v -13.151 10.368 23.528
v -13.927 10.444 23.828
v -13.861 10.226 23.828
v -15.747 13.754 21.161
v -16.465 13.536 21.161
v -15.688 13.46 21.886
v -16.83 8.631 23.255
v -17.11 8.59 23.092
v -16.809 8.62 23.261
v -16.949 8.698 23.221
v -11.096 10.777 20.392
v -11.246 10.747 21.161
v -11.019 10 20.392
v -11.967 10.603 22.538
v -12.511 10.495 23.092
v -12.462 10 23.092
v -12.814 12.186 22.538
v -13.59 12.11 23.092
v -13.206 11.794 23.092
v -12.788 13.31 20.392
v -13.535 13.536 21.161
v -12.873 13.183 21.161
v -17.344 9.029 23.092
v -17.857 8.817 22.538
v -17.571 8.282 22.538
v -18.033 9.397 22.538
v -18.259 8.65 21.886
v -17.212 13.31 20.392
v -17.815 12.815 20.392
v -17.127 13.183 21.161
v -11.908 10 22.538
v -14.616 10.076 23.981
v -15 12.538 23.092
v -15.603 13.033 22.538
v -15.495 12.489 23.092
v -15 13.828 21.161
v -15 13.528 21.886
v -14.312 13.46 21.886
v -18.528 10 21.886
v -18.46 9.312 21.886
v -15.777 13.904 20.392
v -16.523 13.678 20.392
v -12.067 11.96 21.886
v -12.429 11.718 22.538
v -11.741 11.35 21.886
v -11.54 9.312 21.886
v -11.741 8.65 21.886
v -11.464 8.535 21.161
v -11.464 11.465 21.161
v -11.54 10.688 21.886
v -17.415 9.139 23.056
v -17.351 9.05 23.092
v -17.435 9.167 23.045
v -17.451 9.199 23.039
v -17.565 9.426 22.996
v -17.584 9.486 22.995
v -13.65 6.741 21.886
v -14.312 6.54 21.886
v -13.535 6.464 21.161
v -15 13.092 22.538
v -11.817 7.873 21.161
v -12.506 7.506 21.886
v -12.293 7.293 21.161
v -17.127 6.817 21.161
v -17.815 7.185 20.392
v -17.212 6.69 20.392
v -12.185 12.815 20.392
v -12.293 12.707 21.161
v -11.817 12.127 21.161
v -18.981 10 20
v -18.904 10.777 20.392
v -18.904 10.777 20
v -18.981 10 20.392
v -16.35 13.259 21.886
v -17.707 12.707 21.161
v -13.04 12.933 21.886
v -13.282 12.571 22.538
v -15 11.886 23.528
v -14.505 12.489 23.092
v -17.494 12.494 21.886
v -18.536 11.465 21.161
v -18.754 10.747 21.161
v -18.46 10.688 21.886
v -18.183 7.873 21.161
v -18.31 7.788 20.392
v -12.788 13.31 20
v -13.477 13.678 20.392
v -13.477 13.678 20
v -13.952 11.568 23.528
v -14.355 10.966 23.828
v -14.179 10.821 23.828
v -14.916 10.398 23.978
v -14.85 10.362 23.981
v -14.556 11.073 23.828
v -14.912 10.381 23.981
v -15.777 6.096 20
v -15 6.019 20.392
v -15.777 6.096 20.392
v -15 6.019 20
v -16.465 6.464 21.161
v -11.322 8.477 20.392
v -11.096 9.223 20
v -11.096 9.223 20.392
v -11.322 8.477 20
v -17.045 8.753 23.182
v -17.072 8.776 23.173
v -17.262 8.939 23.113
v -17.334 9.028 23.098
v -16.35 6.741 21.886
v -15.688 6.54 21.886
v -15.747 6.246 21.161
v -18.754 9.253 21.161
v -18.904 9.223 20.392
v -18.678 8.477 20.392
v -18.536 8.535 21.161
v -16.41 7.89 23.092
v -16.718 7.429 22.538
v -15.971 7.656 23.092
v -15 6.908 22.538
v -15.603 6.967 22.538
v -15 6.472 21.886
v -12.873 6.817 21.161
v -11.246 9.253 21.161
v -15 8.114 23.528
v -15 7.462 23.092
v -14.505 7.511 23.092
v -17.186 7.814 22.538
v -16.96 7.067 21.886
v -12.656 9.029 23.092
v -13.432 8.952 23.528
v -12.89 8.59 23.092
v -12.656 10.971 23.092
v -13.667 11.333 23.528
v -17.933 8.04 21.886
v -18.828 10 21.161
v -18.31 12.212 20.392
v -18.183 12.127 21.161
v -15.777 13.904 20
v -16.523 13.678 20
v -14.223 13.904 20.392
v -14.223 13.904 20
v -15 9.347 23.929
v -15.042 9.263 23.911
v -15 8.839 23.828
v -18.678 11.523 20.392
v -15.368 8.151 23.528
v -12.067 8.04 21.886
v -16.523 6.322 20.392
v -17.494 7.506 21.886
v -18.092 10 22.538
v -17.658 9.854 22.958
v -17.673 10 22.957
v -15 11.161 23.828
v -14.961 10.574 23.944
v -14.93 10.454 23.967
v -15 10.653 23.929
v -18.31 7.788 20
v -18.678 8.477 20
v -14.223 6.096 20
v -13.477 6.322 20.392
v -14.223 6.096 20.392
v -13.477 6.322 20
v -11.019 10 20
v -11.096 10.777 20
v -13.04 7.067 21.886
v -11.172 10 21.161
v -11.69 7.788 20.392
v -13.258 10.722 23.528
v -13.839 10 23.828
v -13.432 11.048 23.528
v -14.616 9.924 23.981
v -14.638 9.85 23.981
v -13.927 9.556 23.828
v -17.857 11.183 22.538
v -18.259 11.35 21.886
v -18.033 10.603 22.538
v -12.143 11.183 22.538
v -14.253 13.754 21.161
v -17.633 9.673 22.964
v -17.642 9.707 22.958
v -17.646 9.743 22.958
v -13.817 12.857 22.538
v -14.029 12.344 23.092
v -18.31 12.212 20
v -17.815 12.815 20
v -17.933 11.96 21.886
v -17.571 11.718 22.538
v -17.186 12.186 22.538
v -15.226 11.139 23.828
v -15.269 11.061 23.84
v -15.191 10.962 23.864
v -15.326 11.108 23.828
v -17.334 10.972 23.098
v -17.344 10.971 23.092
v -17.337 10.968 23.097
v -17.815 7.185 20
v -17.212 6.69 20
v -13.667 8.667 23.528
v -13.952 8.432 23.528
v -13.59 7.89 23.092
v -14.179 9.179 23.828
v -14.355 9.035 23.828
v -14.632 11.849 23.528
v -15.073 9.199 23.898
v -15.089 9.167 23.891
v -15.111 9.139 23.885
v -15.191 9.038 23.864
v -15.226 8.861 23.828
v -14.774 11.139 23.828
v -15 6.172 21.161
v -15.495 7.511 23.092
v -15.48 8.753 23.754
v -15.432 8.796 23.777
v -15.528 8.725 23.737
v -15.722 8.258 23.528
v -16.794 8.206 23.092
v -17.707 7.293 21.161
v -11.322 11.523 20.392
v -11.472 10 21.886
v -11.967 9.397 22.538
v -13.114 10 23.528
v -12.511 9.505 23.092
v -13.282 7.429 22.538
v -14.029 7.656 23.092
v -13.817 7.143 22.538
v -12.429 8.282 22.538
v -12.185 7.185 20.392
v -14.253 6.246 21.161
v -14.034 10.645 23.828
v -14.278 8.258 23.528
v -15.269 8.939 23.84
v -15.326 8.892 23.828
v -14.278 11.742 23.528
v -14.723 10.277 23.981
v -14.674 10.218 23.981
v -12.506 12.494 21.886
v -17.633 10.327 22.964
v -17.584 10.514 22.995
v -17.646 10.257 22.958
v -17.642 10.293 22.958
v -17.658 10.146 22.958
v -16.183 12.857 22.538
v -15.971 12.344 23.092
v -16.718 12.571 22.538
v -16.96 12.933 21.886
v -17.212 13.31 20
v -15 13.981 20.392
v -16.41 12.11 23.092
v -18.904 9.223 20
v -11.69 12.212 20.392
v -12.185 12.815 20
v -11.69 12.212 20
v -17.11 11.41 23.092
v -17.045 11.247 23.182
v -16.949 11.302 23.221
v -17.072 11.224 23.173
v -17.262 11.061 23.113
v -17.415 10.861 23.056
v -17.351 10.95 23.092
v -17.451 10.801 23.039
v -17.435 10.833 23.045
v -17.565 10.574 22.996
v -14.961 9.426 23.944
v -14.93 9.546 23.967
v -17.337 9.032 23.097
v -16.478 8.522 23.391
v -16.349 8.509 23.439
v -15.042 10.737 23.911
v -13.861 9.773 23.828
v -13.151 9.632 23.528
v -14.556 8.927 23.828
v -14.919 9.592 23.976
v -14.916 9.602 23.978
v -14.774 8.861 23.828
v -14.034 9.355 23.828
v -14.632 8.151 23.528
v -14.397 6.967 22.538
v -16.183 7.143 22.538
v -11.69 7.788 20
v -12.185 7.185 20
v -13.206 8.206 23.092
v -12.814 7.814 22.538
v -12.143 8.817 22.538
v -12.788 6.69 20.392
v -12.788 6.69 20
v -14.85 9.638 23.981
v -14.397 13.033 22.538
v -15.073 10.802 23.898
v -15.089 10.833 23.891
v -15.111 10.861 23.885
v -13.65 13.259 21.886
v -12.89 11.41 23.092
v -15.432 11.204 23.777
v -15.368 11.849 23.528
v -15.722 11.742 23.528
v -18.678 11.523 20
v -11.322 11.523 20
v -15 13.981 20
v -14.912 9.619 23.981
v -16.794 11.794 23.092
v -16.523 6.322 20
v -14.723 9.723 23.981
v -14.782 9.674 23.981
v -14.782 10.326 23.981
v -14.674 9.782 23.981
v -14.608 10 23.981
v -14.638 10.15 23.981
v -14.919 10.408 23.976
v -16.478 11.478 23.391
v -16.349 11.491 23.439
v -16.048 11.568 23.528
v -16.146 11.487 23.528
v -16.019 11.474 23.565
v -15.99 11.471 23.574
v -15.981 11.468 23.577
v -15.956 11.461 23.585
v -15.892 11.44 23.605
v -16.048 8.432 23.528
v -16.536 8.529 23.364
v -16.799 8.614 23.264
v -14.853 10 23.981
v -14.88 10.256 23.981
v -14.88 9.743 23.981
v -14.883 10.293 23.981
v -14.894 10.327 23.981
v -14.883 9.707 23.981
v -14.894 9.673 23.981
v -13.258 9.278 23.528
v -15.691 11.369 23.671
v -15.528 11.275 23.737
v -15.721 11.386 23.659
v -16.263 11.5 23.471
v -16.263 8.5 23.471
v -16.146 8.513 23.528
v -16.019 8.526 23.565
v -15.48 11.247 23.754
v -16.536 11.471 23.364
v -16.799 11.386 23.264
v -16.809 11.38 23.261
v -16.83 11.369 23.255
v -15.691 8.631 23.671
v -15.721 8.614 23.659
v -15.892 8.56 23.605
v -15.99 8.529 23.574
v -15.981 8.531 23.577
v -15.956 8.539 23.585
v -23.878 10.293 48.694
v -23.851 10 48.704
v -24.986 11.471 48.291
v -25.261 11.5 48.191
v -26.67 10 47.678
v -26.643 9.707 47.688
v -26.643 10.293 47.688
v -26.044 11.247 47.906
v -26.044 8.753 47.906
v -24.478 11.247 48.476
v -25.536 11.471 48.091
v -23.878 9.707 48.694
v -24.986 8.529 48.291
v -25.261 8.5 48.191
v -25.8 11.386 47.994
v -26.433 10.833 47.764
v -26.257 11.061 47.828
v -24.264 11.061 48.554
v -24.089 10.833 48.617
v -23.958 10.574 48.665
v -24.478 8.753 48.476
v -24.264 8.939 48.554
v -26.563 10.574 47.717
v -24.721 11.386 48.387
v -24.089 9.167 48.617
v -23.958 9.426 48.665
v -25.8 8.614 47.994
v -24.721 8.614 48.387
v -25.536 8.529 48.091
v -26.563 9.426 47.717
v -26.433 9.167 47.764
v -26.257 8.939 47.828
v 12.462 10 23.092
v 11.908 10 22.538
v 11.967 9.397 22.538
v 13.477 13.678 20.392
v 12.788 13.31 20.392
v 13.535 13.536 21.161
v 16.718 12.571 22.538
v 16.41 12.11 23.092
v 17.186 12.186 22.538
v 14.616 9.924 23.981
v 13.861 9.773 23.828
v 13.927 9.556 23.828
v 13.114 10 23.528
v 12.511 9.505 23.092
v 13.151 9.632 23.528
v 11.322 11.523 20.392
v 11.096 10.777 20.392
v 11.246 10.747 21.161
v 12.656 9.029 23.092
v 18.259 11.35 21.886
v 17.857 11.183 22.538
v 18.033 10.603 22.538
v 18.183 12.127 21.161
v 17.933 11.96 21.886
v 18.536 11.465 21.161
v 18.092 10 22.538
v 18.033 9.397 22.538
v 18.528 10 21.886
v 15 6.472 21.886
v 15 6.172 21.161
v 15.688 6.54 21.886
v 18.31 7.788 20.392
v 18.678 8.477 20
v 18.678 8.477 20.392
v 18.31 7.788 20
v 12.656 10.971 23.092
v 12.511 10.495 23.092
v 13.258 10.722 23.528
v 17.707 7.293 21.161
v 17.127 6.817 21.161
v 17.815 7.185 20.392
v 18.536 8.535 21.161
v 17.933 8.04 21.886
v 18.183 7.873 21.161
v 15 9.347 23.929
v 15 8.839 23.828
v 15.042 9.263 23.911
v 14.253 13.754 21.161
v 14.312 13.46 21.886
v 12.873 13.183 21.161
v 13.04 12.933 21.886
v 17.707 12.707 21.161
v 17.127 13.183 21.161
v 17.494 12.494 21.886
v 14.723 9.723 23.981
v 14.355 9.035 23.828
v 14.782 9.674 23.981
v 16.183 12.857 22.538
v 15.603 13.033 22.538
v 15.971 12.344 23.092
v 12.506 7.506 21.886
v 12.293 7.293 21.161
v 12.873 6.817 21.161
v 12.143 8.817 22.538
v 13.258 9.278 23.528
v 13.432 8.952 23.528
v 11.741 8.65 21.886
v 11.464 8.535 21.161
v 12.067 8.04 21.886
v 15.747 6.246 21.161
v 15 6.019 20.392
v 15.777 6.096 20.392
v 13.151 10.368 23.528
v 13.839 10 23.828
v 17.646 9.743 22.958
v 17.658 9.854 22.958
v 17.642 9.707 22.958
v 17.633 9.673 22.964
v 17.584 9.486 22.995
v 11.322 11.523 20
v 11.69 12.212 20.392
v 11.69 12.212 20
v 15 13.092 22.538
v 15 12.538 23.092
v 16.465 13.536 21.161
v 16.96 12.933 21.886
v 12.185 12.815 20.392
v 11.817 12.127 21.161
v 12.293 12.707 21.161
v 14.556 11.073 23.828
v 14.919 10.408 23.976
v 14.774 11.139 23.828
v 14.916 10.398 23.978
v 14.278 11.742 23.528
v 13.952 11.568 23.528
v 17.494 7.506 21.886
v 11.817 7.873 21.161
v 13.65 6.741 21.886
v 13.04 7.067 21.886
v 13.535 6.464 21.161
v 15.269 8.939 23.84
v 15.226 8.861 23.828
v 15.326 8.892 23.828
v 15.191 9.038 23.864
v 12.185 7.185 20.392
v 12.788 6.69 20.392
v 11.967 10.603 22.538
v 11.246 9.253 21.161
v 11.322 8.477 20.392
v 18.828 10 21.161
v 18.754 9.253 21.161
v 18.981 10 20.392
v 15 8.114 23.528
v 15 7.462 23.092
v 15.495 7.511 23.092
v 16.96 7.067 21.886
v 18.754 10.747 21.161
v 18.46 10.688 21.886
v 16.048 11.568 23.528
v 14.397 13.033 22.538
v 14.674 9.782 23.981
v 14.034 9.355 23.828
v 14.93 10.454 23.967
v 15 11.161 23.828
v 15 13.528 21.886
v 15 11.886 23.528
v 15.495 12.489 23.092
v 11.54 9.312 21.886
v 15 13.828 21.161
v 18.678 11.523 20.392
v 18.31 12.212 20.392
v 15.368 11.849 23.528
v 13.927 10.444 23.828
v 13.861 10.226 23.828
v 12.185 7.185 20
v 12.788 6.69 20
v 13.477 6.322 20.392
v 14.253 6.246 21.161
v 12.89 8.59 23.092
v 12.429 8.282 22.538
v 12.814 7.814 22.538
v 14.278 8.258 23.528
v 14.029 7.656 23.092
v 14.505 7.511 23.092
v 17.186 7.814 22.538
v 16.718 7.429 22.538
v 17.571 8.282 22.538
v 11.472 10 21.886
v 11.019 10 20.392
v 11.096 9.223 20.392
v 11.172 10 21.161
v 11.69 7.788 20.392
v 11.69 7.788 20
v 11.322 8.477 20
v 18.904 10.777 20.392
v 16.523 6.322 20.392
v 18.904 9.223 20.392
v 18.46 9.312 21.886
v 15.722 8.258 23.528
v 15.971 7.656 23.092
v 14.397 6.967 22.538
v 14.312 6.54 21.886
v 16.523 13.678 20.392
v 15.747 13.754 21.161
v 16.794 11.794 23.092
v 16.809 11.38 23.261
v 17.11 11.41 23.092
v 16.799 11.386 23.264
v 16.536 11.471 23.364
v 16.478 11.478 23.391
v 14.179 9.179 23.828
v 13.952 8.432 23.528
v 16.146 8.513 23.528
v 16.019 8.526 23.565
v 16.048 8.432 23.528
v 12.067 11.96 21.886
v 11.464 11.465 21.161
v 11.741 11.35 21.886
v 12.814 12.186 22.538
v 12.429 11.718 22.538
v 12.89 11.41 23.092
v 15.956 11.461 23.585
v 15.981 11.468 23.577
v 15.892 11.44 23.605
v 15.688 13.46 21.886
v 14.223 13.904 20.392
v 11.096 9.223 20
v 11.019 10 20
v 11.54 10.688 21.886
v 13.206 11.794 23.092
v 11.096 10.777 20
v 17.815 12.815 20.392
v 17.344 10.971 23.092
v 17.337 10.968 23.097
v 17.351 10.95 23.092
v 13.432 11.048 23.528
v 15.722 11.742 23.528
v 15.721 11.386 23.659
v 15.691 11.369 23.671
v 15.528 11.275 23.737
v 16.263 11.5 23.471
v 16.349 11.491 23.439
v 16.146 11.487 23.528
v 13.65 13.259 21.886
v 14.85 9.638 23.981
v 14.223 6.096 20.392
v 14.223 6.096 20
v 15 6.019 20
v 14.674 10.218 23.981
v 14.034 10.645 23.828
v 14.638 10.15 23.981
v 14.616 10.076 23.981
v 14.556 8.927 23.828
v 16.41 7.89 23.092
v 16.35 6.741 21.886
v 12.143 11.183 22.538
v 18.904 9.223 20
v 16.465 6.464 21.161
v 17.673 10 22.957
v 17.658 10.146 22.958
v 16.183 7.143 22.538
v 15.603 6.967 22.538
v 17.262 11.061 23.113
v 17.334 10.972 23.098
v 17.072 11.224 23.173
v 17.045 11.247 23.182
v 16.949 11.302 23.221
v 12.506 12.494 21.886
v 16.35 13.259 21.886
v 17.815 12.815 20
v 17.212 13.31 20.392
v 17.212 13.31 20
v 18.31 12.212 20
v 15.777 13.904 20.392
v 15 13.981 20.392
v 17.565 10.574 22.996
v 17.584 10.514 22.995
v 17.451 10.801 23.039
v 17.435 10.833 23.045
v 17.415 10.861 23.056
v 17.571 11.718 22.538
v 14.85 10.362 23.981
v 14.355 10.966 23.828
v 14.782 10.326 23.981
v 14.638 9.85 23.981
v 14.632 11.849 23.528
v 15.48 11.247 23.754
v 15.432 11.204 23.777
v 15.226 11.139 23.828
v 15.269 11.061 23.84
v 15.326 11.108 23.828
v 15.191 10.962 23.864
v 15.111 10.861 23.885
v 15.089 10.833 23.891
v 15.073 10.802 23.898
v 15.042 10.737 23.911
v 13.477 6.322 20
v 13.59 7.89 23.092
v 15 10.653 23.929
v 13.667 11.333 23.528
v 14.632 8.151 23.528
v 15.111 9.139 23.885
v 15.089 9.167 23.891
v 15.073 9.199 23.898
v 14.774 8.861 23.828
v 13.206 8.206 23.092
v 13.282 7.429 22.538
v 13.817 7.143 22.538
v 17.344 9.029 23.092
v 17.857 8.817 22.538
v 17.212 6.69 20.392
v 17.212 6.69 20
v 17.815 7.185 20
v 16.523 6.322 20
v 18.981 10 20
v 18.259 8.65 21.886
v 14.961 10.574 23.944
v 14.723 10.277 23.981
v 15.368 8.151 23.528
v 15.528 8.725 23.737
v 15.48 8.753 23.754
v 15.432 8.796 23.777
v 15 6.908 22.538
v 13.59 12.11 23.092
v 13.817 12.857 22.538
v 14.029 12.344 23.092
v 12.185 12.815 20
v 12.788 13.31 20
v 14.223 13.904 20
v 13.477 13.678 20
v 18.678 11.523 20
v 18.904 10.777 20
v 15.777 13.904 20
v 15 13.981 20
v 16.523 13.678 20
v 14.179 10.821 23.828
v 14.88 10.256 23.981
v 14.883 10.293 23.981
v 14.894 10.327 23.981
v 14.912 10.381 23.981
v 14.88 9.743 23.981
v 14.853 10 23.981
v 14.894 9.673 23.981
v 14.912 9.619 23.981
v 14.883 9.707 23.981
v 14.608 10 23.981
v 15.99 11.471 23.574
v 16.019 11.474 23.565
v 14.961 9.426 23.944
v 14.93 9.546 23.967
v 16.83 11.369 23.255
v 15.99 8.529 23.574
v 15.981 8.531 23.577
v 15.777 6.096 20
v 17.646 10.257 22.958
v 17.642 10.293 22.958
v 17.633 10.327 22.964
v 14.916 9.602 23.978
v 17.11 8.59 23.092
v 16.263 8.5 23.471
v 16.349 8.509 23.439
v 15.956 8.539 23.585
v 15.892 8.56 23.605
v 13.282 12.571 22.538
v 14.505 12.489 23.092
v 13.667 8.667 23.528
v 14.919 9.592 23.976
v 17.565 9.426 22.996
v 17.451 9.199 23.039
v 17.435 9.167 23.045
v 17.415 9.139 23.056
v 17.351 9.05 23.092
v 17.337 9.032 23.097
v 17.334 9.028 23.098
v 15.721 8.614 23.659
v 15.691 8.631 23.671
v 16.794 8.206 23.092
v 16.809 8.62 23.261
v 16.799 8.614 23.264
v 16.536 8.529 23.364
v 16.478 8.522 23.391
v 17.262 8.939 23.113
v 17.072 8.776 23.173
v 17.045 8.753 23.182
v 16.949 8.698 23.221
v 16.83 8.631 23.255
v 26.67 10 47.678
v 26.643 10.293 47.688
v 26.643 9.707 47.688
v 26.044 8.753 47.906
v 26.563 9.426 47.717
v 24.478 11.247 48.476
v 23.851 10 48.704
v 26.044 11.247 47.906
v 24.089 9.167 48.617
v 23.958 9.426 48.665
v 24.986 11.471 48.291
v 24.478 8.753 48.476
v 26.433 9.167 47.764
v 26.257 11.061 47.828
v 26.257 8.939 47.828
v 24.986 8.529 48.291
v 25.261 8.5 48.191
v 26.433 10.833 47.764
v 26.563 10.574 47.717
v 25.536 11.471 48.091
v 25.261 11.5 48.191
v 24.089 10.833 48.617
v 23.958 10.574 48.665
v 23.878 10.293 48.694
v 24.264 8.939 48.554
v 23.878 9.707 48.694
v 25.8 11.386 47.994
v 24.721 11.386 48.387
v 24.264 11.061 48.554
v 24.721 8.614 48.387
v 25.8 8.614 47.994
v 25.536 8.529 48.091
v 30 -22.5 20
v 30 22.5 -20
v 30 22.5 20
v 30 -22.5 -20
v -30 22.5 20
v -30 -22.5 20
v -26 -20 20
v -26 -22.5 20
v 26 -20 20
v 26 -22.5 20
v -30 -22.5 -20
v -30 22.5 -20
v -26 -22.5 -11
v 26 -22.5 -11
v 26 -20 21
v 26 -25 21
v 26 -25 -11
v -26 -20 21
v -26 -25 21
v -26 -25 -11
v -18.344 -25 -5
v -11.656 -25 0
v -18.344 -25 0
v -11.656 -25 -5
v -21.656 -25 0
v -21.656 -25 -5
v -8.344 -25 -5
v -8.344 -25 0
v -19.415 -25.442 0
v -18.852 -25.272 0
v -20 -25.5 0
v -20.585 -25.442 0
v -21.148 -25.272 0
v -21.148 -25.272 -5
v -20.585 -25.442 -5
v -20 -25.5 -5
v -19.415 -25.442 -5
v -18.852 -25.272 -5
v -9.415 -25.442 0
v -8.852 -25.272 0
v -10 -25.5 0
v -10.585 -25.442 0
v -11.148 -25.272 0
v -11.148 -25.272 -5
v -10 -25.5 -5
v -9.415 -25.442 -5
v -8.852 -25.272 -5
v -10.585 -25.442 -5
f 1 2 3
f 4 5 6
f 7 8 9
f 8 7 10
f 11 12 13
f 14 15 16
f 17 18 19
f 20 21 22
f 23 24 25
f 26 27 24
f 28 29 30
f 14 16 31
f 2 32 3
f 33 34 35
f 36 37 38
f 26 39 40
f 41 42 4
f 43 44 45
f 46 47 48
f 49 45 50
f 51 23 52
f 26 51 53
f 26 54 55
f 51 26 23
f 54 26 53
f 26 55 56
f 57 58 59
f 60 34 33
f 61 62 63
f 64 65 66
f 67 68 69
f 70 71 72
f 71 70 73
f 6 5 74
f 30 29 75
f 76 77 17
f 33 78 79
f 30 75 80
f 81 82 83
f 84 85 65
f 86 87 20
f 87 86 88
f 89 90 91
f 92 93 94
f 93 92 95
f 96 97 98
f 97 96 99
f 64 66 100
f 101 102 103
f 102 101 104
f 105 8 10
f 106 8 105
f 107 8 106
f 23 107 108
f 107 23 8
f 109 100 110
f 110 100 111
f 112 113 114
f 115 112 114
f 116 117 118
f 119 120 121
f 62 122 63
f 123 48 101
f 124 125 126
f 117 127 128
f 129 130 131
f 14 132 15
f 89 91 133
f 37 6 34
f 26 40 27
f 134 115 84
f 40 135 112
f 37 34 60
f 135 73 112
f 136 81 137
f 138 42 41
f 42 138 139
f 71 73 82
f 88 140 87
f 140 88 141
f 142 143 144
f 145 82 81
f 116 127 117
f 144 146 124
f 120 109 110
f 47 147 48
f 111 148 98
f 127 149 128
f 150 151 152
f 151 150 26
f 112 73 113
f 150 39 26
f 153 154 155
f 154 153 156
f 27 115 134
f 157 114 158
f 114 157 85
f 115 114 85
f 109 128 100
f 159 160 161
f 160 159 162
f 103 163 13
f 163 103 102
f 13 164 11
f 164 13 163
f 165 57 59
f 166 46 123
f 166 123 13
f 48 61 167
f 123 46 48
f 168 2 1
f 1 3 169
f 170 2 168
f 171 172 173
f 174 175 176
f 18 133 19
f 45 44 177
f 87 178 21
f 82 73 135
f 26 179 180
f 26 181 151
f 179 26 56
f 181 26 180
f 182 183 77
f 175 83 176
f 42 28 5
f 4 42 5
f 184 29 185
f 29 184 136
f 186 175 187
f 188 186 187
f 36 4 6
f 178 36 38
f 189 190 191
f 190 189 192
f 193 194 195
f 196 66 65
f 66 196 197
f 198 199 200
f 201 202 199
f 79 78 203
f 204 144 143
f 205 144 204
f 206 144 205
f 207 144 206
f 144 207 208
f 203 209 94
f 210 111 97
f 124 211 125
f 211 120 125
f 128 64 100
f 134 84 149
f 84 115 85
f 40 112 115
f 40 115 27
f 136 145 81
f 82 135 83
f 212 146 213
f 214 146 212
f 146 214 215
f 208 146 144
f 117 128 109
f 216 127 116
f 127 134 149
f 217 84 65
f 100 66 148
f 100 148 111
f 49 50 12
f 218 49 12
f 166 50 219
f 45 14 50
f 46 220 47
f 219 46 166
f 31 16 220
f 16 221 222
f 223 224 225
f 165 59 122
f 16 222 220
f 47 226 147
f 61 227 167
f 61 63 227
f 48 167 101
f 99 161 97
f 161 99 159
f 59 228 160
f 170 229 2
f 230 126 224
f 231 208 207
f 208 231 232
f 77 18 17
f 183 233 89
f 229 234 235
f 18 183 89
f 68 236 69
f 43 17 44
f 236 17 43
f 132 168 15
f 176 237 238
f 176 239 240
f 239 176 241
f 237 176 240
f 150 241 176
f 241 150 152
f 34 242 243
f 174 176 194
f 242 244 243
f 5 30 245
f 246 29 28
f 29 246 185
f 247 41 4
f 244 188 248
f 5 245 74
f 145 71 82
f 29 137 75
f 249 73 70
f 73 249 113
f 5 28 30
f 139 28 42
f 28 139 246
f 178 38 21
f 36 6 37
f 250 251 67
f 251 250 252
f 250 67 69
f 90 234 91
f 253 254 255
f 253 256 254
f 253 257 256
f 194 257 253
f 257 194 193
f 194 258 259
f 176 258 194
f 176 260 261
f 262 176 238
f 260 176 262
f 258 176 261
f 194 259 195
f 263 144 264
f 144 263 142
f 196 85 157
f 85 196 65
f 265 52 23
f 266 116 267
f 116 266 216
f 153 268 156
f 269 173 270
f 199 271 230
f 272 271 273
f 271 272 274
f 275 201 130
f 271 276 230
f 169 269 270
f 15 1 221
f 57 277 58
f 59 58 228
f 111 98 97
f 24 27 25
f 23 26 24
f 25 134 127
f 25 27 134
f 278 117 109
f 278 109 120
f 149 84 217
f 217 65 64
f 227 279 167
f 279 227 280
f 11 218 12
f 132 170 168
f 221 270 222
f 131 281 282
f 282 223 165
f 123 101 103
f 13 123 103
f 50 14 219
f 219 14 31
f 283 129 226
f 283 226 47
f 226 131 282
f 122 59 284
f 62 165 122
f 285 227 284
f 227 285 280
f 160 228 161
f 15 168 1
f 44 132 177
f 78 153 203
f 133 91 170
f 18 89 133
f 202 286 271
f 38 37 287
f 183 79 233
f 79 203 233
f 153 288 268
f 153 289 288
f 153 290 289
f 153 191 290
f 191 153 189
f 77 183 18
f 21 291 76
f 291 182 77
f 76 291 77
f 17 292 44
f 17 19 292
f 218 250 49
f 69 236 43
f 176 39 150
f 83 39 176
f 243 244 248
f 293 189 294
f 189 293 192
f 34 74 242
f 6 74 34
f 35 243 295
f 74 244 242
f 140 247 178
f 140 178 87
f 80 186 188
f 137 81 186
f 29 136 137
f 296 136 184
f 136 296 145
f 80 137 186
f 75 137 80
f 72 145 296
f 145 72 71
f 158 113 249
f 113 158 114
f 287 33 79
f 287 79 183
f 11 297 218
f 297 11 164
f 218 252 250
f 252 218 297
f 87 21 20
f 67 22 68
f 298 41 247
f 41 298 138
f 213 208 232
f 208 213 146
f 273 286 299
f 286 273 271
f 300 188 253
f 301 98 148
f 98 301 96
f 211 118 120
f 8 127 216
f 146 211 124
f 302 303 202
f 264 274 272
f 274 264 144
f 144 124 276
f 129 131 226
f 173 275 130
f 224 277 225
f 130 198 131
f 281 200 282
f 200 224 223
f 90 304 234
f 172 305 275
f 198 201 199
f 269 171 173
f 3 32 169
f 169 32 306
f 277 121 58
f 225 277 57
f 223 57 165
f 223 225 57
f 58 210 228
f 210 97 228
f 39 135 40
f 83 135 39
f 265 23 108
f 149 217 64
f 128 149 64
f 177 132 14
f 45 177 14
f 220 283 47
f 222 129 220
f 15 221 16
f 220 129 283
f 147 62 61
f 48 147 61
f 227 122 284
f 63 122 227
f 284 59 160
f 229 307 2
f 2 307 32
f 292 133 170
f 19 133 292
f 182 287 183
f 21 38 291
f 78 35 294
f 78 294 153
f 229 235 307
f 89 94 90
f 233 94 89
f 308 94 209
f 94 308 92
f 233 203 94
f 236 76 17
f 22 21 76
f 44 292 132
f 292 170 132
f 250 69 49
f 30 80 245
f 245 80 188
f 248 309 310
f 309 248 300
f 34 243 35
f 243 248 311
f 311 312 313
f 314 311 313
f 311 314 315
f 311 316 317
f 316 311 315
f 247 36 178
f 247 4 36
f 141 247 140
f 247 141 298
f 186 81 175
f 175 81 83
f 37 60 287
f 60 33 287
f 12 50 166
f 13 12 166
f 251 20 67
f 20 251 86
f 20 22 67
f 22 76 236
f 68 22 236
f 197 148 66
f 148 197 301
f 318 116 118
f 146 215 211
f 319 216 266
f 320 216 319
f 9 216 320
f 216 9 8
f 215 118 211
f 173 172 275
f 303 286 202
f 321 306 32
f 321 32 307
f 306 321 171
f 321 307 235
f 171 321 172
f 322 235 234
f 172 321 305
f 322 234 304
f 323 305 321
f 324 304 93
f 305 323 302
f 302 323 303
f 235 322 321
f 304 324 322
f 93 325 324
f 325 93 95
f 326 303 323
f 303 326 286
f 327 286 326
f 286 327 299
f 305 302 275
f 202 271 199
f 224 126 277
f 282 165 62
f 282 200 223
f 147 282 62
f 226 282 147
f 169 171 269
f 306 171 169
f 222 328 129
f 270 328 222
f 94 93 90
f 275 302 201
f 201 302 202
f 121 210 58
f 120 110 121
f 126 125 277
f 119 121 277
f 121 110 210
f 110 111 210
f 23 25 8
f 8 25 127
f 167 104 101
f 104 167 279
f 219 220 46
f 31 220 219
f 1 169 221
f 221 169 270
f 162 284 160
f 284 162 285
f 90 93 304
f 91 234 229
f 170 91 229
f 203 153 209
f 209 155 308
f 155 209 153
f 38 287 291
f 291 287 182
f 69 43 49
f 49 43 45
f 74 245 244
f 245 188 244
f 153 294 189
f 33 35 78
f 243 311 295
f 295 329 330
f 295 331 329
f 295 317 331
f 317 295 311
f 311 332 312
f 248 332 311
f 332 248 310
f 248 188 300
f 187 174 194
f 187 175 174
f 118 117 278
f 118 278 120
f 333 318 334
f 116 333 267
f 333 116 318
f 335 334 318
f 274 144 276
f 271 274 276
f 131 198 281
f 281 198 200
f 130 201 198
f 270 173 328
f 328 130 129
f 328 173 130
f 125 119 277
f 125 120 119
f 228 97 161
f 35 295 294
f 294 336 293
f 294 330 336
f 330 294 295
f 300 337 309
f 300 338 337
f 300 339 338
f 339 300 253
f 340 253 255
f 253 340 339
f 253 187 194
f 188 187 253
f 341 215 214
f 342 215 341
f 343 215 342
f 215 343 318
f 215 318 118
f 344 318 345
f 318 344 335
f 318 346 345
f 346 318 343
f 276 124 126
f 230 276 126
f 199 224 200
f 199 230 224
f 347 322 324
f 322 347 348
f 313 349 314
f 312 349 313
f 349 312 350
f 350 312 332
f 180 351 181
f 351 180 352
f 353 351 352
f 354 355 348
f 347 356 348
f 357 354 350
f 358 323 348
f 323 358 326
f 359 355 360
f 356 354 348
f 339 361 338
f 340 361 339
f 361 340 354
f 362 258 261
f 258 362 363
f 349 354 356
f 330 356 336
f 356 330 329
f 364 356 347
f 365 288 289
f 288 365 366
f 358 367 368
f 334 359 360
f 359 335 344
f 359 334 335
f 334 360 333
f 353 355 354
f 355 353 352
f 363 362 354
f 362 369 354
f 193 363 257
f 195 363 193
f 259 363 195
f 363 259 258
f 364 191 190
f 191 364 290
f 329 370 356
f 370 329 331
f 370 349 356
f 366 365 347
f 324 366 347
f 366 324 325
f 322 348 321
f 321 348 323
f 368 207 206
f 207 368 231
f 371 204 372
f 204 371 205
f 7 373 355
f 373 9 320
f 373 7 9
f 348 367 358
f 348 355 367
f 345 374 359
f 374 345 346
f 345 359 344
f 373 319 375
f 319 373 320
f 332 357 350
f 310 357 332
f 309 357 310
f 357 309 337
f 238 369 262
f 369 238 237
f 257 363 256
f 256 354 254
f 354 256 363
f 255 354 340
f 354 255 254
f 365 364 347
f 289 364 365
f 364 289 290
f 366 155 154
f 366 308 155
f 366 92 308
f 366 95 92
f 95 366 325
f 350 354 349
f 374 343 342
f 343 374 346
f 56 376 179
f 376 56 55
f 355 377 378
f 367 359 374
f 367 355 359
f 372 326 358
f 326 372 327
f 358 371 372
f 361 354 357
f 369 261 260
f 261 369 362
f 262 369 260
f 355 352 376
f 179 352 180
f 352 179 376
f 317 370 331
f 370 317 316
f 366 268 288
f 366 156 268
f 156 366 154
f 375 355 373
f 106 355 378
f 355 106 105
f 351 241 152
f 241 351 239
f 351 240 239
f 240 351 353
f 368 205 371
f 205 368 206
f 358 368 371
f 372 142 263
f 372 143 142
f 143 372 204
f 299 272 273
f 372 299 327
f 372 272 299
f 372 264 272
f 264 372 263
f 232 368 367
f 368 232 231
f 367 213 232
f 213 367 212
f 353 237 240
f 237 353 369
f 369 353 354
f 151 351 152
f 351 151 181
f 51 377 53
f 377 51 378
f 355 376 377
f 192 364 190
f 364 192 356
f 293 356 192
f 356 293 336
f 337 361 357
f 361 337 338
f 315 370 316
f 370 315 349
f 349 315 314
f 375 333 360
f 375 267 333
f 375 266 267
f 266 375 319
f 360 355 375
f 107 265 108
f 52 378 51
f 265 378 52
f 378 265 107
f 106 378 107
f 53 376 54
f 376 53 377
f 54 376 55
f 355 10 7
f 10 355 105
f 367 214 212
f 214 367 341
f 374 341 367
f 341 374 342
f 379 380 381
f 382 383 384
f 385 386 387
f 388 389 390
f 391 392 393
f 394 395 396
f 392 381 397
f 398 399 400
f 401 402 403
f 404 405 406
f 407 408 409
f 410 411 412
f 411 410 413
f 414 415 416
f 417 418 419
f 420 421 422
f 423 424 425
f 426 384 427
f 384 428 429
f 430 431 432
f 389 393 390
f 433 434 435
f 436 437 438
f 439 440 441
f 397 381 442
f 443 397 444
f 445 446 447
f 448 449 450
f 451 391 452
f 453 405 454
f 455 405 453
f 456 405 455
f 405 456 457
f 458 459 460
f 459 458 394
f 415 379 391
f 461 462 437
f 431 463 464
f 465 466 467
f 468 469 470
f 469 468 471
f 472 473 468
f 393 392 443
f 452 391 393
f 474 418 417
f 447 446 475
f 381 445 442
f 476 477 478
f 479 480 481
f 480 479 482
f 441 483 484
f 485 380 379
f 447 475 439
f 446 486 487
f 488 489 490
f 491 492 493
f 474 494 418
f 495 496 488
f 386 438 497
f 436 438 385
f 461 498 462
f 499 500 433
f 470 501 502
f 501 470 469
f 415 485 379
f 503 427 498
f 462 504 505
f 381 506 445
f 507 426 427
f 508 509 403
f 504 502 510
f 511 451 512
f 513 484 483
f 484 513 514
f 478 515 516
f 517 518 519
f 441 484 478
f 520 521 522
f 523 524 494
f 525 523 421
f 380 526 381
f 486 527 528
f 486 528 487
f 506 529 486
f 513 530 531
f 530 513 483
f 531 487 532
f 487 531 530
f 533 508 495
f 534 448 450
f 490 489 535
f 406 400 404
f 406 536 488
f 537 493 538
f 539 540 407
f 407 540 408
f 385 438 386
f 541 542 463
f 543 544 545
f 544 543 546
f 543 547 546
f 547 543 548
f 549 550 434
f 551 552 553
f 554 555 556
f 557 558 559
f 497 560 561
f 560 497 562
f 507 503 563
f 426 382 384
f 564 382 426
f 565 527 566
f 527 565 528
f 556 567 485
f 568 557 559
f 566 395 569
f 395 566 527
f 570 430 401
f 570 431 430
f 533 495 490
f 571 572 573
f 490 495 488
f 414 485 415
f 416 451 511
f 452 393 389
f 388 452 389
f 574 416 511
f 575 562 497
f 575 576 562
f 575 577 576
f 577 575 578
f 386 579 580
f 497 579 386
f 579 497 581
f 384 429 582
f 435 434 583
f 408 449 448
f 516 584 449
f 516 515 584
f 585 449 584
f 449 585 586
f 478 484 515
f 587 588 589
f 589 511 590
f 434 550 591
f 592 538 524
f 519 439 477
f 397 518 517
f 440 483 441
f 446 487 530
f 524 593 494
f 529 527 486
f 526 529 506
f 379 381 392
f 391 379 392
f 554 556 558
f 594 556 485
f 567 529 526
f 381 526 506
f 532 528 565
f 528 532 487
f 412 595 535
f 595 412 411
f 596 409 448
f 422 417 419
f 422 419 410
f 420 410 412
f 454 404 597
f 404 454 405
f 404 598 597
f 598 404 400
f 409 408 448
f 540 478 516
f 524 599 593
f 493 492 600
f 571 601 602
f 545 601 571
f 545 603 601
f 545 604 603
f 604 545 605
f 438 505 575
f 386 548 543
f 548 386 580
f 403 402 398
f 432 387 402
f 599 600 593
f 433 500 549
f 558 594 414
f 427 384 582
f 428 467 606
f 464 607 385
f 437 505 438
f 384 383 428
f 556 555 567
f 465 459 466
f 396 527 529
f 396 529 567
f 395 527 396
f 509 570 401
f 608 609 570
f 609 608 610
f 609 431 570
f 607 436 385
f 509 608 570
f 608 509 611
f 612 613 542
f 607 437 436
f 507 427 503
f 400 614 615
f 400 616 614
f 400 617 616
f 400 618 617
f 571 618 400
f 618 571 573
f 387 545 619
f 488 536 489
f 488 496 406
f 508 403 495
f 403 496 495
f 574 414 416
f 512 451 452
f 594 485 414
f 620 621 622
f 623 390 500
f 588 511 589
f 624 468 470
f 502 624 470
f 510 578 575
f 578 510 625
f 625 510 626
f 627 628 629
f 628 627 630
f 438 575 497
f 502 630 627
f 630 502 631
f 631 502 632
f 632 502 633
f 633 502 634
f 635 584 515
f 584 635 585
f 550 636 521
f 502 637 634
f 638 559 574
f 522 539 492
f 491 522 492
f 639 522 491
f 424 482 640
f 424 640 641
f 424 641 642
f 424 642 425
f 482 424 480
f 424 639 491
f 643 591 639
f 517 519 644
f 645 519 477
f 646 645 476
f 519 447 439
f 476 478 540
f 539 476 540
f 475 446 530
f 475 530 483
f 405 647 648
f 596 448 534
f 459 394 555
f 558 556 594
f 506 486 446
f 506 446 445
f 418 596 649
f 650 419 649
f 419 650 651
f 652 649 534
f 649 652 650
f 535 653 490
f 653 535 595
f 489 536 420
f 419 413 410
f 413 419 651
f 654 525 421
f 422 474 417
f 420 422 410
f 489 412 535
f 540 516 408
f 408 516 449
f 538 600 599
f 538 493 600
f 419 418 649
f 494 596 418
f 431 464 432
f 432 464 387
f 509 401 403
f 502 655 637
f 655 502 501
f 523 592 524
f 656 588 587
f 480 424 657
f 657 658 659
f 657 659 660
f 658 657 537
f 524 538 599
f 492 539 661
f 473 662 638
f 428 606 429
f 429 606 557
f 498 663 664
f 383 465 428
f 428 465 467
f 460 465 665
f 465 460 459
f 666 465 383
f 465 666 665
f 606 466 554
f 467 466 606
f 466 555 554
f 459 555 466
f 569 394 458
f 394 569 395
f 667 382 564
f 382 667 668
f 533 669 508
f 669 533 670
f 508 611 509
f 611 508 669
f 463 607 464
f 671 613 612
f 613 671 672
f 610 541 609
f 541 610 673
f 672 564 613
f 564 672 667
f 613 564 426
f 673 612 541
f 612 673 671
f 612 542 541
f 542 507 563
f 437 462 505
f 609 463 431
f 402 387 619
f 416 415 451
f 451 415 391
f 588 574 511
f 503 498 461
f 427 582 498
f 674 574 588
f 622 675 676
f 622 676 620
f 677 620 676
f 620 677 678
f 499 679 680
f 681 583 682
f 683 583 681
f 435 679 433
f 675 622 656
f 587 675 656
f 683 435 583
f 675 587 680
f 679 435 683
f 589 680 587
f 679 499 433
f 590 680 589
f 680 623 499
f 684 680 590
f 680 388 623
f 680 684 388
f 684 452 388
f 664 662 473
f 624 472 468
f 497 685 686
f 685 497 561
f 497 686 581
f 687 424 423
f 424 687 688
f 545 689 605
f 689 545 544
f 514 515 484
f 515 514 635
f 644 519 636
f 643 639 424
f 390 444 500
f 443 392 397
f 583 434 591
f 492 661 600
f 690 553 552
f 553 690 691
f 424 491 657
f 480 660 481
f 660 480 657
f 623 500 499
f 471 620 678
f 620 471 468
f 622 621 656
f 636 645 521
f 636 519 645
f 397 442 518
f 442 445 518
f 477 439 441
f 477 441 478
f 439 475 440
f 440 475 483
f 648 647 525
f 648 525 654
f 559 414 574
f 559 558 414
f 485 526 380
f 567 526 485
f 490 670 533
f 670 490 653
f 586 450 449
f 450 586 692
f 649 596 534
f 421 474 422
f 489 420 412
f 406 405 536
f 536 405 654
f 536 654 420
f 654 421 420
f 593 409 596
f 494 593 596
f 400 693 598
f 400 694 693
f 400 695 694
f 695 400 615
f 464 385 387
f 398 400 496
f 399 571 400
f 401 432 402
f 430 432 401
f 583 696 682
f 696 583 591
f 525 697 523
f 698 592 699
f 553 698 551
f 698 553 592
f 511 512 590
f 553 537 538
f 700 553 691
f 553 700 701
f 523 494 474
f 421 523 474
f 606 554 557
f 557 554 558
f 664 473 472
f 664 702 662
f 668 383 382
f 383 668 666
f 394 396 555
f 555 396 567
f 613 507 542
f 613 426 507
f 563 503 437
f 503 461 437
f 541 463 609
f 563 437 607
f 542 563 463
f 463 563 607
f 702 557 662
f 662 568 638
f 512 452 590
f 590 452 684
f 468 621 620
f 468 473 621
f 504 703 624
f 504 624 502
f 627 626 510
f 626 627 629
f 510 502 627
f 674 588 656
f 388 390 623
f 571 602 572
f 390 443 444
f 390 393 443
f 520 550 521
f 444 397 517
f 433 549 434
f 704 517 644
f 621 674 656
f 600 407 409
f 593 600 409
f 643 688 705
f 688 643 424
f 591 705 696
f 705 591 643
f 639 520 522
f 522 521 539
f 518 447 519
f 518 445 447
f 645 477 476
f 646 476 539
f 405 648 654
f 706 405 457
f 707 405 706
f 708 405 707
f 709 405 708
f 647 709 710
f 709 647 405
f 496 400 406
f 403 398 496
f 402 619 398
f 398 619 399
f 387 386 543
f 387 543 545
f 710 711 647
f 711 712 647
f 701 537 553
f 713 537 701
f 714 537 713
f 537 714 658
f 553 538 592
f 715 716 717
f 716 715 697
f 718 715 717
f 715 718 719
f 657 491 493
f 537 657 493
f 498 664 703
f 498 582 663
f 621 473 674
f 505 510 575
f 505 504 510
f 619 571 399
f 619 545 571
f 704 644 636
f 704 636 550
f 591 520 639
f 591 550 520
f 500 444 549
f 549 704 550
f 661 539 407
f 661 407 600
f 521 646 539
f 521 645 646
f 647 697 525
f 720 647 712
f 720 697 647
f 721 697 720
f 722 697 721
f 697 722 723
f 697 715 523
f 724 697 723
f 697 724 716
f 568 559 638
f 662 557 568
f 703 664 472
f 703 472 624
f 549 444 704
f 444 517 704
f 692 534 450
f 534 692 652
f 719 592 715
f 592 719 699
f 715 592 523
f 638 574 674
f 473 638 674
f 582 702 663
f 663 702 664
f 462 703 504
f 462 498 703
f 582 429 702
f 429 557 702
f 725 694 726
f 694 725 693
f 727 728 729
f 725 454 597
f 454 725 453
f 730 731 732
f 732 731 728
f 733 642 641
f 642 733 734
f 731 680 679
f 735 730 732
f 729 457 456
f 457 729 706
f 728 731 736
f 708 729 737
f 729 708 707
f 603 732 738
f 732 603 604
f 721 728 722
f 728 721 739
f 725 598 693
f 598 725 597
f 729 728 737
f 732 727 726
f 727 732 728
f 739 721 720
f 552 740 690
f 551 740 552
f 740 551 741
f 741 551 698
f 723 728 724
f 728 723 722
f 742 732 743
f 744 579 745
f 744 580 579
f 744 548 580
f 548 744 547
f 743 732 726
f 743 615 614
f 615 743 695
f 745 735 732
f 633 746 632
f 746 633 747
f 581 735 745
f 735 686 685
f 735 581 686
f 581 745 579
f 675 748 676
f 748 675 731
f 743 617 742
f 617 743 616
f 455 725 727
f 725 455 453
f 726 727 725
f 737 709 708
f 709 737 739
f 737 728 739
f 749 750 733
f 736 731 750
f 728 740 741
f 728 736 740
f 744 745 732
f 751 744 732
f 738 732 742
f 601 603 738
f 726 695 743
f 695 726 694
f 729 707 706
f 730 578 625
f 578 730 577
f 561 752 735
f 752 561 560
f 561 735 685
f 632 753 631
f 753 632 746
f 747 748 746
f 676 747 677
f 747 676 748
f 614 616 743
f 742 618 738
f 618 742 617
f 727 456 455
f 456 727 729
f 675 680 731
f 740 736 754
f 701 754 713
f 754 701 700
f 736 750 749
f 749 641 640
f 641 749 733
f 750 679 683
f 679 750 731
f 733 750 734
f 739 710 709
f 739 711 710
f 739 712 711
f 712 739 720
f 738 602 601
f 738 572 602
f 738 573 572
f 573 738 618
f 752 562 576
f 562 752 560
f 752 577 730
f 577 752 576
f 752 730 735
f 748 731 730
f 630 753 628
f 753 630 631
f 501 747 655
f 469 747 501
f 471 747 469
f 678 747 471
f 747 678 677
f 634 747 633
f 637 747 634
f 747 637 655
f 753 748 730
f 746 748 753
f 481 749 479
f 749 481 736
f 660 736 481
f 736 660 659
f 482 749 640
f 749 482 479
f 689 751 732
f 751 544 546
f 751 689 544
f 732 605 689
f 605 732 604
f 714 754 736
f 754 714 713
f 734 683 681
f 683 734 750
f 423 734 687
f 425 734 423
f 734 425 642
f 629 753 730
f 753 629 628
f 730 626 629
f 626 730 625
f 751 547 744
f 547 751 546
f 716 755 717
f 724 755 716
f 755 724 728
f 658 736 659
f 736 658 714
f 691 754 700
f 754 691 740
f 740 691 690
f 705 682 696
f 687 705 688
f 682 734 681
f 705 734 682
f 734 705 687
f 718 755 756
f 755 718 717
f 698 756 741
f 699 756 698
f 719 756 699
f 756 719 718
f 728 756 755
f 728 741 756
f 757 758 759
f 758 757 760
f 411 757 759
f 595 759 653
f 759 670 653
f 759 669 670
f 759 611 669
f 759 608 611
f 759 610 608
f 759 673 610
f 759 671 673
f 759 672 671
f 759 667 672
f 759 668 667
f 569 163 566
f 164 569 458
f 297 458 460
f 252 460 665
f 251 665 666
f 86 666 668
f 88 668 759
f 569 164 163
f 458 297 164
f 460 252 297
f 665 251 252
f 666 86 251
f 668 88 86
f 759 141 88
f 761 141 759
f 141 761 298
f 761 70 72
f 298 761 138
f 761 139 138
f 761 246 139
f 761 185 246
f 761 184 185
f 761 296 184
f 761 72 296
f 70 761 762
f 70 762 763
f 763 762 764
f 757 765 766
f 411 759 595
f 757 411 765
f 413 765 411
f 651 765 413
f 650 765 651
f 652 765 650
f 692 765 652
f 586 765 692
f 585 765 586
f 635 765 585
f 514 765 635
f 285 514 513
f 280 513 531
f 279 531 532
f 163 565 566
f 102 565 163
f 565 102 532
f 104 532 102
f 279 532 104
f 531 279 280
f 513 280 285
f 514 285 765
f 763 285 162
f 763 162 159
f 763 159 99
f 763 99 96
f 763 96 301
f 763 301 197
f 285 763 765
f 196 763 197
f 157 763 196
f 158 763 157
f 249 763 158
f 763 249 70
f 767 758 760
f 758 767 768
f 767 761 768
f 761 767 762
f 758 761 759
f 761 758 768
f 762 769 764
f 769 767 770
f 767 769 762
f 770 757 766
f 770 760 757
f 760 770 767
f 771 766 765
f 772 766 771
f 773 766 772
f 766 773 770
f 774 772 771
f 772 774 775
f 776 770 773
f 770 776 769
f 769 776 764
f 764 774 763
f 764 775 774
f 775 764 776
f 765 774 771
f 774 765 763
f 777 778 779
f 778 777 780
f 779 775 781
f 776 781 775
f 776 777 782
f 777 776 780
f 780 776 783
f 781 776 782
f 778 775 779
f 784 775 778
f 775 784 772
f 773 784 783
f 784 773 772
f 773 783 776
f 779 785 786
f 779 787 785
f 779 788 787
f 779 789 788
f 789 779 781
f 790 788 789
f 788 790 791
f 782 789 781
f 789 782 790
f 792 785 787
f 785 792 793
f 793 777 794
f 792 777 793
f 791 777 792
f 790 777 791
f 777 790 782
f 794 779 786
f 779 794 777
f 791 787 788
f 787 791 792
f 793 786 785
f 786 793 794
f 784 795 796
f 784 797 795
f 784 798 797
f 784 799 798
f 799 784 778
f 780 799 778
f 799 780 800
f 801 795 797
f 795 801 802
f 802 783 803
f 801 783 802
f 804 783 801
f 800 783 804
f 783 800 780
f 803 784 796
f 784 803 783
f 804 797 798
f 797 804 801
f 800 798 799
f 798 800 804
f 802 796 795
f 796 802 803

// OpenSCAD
$fn = 32;

union() {
    // TV Cabinet
    cube([60, 45, 40], center=true);
    
    // Screen Area (Front Plate)
    translate([0, -22.5, 5])
        cube([52, 5, 32], center=true);
    
    // Antenna Left
    translate([-15, 10, 20]) {
        sphere(r=4);
        rotate([0, -20, 0])
            cylinder(h=30, r=1.5);
    }
    
    // Antenna Right
    translate([15, 10, 20]) {
        sphere(r=4);
        rotate([0, 20, 0])
            cylinder(h=30, r=1.5);
    }
    
    // Stand
    translate([0, 0, -20])
        cylinder(h=5, r1=15, r2=5);
        
    // Knobs
    translate([-20, -22.5, -5])
        cylinder(h=5, r=3);
    translate([-10, -22.5, -5])
        cylinder(h=5, r=3);
}
